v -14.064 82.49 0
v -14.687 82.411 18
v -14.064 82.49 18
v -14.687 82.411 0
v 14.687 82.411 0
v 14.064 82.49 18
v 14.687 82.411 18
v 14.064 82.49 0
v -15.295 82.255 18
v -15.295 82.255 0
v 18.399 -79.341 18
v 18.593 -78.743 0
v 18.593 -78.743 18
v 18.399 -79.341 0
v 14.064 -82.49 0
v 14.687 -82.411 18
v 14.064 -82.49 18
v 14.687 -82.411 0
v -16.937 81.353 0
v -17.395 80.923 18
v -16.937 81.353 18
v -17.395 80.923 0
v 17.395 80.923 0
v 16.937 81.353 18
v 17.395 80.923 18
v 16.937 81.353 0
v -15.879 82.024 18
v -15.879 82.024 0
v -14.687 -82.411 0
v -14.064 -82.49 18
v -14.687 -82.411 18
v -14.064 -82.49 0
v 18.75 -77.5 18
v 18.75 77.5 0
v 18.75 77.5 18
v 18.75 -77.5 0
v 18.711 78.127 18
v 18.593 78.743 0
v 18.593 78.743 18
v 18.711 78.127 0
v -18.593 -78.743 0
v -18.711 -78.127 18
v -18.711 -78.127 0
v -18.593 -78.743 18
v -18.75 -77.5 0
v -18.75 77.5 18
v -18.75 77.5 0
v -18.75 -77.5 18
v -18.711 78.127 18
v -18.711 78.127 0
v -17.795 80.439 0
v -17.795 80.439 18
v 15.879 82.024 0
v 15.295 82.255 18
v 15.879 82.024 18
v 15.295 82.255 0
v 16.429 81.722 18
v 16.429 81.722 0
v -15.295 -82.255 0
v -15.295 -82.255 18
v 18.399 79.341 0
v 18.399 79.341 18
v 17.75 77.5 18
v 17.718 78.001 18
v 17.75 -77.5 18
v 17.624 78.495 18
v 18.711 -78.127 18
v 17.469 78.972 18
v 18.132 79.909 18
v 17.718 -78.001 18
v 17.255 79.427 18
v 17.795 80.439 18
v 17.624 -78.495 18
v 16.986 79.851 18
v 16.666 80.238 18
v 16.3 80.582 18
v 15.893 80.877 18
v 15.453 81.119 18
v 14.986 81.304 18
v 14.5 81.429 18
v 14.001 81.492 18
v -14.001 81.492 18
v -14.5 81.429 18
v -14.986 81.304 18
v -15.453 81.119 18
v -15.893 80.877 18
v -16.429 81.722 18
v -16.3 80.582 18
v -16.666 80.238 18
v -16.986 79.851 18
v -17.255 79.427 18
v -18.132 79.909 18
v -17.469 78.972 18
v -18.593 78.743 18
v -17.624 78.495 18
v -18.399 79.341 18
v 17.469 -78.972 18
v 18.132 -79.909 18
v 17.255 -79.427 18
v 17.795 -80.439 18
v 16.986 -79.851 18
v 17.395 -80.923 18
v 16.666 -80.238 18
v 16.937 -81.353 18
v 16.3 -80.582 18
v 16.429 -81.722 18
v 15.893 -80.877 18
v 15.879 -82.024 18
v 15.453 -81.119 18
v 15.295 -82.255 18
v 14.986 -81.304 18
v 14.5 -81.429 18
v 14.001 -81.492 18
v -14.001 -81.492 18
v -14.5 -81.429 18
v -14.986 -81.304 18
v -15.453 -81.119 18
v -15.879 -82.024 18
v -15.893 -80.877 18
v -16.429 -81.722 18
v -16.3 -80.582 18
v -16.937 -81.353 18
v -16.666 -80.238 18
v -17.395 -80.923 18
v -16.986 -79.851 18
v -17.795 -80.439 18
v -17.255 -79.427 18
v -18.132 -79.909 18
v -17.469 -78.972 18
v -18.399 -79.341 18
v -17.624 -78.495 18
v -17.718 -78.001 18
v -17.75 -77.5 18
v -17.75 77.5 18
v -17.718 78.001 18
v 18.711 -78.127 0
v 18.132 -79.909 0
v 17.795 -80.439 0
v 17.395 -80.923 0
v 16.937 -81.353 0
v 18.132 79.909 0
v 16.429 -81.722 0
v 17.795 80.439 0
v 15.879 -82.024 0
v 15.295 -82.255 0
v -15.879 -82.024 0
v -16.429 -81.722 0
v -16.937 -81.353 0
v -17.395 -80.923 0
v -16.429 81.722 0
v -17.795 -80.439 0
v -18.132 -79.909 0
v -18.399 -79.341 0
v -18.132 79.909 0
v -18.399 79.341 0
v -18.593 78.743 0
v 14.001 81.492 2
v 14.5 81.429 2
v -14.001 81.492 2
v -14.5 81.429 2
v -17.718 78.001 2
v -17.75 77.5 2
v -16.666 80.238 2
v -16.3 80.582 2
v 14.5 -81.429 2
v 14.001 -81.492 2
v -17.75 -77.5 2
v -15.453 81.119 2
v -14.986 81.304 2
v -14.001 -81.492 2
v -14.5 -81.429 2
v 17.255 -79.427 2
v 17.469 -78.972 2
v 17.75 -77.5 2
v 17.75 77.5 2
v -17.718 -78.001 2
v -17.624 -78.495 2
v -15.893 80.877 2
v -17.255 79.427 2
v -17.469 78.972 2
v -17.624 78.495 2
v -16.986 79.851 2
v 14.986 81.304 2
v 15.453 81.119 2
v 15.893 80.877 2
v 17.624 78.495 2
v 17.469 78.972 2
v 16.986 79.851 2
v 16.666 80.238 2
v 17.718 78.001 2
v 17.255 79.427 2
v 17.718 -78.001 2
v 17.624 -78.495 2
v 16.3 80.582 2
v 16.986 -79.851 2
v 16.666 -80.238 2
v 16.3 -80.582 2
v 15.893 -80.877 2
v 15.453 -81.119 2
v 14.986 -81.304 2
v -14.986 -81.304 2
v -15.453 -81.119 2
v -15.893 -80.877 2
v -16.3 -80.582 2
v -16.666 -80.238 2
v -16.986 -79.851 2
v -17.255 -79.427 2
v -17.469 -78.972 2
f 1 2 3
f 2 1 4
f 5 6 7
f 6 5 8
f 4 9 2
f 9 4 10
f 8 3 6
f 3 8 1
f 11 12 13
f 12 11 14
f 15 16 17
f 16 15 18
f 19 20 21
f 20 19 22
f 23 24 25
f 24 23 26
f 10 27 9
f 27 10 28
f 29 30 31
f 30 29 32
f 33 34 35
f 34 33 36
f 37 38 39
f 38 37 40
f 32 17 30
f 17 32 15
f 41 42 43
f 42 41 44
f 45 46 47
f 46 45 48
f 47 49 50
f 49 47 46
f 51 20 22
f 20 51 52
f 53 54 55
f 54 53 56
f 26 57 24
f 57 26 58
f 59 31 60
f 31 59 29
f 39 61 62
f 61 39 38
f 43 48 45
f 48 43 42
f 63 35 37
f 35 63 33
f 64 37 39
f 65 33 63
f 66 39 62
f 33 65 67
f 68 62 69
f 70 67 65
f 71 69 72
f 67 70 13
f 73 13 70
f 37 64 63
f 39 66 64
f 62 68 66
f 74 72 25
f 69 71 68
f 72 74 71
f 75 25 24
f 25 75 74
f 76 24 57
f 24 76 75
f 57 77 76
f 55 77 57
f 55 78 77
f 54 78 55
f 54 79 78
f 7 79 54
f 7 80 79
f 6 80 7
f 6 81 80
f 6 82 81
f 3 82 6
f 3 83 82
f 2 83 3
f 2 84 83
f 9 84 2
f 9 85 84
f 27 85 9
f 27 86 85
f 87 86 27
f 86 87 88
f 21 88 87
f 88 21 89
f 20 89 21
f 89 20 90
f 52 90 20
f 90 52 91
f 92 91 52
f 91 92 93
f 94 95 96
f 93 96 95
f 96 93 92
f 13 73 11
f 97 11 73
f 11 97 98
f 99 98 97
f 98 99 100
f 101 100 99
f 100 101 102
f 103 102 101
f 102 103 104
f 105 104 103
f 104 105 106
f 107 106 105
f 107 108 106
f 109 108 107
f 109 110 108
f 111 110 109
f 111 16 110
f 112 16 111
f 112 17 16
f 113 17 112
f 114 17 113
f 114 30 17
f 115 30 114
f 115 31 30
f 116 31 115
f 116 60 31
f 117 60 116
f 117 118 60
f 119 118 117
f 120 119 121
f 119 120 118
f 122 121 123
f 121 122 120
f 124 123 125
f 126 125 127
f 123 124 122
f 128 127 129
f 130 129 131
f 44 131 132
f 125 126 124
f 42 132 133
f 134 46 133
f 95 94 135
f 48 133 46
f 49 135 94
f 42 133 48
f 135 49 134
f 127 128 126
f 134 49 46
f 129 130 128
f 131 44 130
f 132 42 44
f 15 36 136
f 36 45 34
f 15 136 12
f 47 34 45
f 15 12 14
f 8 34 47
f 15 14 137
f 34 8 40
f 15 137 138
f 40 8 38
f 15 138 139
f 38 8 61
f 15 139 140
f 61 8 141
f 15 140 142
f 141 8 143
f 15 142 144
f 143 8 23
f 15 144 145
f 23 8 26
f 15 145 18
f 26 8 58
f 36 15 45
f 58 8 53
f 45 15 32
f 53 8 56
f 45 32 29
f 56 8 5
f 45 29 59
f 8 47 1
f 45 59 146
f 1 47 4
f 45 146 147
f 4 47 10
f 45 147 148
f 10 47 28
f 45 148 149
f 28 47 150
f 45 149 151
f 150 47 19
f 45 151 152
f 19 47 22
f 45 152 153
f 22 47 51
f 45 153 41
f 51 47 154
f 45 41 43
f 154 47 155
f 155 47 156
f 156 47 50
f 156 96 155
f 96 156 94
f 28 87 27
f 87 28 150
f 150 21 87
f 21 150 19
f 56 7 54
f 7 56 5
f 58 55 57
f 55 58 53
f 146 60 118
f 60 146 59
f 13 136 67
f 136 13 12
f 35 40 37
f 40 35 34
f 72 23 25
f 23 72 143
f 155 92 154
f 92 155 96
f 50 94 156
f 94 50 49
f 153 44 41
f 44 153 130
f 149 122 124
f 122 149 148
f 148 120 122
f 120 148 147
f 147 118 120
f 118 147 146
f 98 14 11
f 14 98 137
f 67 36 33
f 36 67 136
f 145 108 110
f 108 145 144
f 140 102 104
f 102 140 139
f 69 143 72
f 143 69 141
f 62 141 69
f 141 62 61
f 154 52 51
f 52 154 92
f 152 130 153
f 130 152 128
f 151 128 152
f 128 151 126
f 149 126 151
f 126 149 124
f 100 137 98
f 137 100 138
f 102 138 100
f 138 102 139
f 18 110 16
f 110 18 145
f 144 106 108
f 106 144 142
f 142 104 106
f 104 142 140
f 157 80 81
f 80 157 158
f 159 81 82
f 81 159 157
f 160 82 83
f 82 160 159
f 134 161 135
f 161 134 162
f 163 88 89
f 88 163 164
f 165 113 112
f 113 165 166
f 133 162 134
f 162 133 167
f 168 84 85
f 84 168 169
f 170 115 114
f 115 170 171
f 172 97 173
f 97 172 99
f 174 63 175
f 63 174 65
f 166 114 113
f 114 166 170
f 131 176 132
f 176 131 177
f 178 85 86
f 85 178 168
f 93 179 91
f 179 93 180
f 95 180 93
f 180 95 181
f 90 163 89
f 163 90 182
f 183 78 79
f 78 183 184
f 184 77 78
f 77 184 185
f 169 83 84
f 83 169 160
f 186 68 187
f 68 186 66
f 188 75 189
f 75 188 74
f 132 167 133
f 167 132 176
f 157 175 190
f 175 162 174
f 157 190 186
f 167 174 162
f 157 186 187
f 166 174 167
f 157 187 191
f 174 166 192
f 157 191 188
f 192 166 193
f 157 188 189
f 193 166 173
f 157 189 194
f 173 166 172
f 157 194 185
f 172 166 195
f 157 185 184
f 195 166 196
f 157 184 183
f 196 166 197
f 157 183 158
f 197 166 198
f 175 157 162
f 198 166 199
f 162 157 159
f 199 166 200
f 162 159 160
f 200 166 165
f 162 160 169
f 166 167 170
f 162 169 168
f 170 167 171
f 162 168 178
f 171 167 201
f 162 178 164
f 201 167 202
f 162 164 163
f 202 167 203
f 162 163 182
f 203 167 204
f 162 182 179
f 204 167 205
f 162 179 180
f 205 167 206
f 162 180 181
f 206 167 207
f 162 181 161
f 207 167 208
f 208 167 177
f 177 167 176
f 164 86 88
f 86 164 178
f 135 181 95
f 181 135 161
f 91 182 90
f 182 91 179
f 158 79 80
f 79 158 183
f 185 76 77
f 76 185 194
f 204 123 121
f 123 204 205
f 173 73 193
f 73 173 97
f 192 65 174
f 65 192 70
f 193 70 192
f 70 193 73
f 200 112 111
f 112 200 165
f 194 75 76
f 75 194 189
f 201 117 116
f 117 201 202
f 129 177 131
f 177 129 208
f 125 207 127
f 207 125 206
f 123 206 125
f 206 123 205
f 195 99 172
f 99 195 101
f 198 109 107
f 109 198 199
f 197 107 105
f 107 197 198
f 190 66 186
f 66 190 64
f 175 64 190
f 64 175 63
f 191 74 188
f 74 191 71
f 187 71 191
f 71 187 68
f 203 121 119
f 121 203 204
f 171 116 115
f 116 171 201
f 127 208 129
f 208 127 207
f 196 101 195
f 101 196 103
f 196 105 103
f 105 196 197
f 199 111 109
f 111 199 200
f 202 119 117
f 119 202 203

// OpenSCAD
$fn = 50;


difference() {
	union() {
		hull() {
			translate(v = [-13.7500000000, 77.5000000000, 0]) {
				cylinder(h = 18, r = 5);
			}
			translate(v = [13.7500000000, 77.5000000000, 0]) {
				cylinder(h = 18, r = 5);
			}
			translate(v = [-13.7500000000, -77.5000000000, 0]) {
				cylinder(h = 18, r = 5);
			}
			translate(v = [13.7500000000, -77.5000000000, 0]) {
				cylinder(h = 18, r = 5);
			}
		}
	}
	union() {
		translate(v = [0, 0, 2]) {
			hull() {
				translate(v = [-13.7500000000, 77.5000000000, 0]) {
					cylinder(h = 16, r = 4);
				}
				translate(v = [13.7500000000, 77.5000000000, 0]) {
					cylinder(h = 16, r = 4);
				}
				translate(v = [-13.7500000000, -77.5000000000, 0]) {
					cylinder(h = 16, r = 4);
				}
				translate(v = [13.7500000000, -77.5000000000, 0]) {
					cylinder(h = 16, r = 4);
				}
			}
		}
	}
}
